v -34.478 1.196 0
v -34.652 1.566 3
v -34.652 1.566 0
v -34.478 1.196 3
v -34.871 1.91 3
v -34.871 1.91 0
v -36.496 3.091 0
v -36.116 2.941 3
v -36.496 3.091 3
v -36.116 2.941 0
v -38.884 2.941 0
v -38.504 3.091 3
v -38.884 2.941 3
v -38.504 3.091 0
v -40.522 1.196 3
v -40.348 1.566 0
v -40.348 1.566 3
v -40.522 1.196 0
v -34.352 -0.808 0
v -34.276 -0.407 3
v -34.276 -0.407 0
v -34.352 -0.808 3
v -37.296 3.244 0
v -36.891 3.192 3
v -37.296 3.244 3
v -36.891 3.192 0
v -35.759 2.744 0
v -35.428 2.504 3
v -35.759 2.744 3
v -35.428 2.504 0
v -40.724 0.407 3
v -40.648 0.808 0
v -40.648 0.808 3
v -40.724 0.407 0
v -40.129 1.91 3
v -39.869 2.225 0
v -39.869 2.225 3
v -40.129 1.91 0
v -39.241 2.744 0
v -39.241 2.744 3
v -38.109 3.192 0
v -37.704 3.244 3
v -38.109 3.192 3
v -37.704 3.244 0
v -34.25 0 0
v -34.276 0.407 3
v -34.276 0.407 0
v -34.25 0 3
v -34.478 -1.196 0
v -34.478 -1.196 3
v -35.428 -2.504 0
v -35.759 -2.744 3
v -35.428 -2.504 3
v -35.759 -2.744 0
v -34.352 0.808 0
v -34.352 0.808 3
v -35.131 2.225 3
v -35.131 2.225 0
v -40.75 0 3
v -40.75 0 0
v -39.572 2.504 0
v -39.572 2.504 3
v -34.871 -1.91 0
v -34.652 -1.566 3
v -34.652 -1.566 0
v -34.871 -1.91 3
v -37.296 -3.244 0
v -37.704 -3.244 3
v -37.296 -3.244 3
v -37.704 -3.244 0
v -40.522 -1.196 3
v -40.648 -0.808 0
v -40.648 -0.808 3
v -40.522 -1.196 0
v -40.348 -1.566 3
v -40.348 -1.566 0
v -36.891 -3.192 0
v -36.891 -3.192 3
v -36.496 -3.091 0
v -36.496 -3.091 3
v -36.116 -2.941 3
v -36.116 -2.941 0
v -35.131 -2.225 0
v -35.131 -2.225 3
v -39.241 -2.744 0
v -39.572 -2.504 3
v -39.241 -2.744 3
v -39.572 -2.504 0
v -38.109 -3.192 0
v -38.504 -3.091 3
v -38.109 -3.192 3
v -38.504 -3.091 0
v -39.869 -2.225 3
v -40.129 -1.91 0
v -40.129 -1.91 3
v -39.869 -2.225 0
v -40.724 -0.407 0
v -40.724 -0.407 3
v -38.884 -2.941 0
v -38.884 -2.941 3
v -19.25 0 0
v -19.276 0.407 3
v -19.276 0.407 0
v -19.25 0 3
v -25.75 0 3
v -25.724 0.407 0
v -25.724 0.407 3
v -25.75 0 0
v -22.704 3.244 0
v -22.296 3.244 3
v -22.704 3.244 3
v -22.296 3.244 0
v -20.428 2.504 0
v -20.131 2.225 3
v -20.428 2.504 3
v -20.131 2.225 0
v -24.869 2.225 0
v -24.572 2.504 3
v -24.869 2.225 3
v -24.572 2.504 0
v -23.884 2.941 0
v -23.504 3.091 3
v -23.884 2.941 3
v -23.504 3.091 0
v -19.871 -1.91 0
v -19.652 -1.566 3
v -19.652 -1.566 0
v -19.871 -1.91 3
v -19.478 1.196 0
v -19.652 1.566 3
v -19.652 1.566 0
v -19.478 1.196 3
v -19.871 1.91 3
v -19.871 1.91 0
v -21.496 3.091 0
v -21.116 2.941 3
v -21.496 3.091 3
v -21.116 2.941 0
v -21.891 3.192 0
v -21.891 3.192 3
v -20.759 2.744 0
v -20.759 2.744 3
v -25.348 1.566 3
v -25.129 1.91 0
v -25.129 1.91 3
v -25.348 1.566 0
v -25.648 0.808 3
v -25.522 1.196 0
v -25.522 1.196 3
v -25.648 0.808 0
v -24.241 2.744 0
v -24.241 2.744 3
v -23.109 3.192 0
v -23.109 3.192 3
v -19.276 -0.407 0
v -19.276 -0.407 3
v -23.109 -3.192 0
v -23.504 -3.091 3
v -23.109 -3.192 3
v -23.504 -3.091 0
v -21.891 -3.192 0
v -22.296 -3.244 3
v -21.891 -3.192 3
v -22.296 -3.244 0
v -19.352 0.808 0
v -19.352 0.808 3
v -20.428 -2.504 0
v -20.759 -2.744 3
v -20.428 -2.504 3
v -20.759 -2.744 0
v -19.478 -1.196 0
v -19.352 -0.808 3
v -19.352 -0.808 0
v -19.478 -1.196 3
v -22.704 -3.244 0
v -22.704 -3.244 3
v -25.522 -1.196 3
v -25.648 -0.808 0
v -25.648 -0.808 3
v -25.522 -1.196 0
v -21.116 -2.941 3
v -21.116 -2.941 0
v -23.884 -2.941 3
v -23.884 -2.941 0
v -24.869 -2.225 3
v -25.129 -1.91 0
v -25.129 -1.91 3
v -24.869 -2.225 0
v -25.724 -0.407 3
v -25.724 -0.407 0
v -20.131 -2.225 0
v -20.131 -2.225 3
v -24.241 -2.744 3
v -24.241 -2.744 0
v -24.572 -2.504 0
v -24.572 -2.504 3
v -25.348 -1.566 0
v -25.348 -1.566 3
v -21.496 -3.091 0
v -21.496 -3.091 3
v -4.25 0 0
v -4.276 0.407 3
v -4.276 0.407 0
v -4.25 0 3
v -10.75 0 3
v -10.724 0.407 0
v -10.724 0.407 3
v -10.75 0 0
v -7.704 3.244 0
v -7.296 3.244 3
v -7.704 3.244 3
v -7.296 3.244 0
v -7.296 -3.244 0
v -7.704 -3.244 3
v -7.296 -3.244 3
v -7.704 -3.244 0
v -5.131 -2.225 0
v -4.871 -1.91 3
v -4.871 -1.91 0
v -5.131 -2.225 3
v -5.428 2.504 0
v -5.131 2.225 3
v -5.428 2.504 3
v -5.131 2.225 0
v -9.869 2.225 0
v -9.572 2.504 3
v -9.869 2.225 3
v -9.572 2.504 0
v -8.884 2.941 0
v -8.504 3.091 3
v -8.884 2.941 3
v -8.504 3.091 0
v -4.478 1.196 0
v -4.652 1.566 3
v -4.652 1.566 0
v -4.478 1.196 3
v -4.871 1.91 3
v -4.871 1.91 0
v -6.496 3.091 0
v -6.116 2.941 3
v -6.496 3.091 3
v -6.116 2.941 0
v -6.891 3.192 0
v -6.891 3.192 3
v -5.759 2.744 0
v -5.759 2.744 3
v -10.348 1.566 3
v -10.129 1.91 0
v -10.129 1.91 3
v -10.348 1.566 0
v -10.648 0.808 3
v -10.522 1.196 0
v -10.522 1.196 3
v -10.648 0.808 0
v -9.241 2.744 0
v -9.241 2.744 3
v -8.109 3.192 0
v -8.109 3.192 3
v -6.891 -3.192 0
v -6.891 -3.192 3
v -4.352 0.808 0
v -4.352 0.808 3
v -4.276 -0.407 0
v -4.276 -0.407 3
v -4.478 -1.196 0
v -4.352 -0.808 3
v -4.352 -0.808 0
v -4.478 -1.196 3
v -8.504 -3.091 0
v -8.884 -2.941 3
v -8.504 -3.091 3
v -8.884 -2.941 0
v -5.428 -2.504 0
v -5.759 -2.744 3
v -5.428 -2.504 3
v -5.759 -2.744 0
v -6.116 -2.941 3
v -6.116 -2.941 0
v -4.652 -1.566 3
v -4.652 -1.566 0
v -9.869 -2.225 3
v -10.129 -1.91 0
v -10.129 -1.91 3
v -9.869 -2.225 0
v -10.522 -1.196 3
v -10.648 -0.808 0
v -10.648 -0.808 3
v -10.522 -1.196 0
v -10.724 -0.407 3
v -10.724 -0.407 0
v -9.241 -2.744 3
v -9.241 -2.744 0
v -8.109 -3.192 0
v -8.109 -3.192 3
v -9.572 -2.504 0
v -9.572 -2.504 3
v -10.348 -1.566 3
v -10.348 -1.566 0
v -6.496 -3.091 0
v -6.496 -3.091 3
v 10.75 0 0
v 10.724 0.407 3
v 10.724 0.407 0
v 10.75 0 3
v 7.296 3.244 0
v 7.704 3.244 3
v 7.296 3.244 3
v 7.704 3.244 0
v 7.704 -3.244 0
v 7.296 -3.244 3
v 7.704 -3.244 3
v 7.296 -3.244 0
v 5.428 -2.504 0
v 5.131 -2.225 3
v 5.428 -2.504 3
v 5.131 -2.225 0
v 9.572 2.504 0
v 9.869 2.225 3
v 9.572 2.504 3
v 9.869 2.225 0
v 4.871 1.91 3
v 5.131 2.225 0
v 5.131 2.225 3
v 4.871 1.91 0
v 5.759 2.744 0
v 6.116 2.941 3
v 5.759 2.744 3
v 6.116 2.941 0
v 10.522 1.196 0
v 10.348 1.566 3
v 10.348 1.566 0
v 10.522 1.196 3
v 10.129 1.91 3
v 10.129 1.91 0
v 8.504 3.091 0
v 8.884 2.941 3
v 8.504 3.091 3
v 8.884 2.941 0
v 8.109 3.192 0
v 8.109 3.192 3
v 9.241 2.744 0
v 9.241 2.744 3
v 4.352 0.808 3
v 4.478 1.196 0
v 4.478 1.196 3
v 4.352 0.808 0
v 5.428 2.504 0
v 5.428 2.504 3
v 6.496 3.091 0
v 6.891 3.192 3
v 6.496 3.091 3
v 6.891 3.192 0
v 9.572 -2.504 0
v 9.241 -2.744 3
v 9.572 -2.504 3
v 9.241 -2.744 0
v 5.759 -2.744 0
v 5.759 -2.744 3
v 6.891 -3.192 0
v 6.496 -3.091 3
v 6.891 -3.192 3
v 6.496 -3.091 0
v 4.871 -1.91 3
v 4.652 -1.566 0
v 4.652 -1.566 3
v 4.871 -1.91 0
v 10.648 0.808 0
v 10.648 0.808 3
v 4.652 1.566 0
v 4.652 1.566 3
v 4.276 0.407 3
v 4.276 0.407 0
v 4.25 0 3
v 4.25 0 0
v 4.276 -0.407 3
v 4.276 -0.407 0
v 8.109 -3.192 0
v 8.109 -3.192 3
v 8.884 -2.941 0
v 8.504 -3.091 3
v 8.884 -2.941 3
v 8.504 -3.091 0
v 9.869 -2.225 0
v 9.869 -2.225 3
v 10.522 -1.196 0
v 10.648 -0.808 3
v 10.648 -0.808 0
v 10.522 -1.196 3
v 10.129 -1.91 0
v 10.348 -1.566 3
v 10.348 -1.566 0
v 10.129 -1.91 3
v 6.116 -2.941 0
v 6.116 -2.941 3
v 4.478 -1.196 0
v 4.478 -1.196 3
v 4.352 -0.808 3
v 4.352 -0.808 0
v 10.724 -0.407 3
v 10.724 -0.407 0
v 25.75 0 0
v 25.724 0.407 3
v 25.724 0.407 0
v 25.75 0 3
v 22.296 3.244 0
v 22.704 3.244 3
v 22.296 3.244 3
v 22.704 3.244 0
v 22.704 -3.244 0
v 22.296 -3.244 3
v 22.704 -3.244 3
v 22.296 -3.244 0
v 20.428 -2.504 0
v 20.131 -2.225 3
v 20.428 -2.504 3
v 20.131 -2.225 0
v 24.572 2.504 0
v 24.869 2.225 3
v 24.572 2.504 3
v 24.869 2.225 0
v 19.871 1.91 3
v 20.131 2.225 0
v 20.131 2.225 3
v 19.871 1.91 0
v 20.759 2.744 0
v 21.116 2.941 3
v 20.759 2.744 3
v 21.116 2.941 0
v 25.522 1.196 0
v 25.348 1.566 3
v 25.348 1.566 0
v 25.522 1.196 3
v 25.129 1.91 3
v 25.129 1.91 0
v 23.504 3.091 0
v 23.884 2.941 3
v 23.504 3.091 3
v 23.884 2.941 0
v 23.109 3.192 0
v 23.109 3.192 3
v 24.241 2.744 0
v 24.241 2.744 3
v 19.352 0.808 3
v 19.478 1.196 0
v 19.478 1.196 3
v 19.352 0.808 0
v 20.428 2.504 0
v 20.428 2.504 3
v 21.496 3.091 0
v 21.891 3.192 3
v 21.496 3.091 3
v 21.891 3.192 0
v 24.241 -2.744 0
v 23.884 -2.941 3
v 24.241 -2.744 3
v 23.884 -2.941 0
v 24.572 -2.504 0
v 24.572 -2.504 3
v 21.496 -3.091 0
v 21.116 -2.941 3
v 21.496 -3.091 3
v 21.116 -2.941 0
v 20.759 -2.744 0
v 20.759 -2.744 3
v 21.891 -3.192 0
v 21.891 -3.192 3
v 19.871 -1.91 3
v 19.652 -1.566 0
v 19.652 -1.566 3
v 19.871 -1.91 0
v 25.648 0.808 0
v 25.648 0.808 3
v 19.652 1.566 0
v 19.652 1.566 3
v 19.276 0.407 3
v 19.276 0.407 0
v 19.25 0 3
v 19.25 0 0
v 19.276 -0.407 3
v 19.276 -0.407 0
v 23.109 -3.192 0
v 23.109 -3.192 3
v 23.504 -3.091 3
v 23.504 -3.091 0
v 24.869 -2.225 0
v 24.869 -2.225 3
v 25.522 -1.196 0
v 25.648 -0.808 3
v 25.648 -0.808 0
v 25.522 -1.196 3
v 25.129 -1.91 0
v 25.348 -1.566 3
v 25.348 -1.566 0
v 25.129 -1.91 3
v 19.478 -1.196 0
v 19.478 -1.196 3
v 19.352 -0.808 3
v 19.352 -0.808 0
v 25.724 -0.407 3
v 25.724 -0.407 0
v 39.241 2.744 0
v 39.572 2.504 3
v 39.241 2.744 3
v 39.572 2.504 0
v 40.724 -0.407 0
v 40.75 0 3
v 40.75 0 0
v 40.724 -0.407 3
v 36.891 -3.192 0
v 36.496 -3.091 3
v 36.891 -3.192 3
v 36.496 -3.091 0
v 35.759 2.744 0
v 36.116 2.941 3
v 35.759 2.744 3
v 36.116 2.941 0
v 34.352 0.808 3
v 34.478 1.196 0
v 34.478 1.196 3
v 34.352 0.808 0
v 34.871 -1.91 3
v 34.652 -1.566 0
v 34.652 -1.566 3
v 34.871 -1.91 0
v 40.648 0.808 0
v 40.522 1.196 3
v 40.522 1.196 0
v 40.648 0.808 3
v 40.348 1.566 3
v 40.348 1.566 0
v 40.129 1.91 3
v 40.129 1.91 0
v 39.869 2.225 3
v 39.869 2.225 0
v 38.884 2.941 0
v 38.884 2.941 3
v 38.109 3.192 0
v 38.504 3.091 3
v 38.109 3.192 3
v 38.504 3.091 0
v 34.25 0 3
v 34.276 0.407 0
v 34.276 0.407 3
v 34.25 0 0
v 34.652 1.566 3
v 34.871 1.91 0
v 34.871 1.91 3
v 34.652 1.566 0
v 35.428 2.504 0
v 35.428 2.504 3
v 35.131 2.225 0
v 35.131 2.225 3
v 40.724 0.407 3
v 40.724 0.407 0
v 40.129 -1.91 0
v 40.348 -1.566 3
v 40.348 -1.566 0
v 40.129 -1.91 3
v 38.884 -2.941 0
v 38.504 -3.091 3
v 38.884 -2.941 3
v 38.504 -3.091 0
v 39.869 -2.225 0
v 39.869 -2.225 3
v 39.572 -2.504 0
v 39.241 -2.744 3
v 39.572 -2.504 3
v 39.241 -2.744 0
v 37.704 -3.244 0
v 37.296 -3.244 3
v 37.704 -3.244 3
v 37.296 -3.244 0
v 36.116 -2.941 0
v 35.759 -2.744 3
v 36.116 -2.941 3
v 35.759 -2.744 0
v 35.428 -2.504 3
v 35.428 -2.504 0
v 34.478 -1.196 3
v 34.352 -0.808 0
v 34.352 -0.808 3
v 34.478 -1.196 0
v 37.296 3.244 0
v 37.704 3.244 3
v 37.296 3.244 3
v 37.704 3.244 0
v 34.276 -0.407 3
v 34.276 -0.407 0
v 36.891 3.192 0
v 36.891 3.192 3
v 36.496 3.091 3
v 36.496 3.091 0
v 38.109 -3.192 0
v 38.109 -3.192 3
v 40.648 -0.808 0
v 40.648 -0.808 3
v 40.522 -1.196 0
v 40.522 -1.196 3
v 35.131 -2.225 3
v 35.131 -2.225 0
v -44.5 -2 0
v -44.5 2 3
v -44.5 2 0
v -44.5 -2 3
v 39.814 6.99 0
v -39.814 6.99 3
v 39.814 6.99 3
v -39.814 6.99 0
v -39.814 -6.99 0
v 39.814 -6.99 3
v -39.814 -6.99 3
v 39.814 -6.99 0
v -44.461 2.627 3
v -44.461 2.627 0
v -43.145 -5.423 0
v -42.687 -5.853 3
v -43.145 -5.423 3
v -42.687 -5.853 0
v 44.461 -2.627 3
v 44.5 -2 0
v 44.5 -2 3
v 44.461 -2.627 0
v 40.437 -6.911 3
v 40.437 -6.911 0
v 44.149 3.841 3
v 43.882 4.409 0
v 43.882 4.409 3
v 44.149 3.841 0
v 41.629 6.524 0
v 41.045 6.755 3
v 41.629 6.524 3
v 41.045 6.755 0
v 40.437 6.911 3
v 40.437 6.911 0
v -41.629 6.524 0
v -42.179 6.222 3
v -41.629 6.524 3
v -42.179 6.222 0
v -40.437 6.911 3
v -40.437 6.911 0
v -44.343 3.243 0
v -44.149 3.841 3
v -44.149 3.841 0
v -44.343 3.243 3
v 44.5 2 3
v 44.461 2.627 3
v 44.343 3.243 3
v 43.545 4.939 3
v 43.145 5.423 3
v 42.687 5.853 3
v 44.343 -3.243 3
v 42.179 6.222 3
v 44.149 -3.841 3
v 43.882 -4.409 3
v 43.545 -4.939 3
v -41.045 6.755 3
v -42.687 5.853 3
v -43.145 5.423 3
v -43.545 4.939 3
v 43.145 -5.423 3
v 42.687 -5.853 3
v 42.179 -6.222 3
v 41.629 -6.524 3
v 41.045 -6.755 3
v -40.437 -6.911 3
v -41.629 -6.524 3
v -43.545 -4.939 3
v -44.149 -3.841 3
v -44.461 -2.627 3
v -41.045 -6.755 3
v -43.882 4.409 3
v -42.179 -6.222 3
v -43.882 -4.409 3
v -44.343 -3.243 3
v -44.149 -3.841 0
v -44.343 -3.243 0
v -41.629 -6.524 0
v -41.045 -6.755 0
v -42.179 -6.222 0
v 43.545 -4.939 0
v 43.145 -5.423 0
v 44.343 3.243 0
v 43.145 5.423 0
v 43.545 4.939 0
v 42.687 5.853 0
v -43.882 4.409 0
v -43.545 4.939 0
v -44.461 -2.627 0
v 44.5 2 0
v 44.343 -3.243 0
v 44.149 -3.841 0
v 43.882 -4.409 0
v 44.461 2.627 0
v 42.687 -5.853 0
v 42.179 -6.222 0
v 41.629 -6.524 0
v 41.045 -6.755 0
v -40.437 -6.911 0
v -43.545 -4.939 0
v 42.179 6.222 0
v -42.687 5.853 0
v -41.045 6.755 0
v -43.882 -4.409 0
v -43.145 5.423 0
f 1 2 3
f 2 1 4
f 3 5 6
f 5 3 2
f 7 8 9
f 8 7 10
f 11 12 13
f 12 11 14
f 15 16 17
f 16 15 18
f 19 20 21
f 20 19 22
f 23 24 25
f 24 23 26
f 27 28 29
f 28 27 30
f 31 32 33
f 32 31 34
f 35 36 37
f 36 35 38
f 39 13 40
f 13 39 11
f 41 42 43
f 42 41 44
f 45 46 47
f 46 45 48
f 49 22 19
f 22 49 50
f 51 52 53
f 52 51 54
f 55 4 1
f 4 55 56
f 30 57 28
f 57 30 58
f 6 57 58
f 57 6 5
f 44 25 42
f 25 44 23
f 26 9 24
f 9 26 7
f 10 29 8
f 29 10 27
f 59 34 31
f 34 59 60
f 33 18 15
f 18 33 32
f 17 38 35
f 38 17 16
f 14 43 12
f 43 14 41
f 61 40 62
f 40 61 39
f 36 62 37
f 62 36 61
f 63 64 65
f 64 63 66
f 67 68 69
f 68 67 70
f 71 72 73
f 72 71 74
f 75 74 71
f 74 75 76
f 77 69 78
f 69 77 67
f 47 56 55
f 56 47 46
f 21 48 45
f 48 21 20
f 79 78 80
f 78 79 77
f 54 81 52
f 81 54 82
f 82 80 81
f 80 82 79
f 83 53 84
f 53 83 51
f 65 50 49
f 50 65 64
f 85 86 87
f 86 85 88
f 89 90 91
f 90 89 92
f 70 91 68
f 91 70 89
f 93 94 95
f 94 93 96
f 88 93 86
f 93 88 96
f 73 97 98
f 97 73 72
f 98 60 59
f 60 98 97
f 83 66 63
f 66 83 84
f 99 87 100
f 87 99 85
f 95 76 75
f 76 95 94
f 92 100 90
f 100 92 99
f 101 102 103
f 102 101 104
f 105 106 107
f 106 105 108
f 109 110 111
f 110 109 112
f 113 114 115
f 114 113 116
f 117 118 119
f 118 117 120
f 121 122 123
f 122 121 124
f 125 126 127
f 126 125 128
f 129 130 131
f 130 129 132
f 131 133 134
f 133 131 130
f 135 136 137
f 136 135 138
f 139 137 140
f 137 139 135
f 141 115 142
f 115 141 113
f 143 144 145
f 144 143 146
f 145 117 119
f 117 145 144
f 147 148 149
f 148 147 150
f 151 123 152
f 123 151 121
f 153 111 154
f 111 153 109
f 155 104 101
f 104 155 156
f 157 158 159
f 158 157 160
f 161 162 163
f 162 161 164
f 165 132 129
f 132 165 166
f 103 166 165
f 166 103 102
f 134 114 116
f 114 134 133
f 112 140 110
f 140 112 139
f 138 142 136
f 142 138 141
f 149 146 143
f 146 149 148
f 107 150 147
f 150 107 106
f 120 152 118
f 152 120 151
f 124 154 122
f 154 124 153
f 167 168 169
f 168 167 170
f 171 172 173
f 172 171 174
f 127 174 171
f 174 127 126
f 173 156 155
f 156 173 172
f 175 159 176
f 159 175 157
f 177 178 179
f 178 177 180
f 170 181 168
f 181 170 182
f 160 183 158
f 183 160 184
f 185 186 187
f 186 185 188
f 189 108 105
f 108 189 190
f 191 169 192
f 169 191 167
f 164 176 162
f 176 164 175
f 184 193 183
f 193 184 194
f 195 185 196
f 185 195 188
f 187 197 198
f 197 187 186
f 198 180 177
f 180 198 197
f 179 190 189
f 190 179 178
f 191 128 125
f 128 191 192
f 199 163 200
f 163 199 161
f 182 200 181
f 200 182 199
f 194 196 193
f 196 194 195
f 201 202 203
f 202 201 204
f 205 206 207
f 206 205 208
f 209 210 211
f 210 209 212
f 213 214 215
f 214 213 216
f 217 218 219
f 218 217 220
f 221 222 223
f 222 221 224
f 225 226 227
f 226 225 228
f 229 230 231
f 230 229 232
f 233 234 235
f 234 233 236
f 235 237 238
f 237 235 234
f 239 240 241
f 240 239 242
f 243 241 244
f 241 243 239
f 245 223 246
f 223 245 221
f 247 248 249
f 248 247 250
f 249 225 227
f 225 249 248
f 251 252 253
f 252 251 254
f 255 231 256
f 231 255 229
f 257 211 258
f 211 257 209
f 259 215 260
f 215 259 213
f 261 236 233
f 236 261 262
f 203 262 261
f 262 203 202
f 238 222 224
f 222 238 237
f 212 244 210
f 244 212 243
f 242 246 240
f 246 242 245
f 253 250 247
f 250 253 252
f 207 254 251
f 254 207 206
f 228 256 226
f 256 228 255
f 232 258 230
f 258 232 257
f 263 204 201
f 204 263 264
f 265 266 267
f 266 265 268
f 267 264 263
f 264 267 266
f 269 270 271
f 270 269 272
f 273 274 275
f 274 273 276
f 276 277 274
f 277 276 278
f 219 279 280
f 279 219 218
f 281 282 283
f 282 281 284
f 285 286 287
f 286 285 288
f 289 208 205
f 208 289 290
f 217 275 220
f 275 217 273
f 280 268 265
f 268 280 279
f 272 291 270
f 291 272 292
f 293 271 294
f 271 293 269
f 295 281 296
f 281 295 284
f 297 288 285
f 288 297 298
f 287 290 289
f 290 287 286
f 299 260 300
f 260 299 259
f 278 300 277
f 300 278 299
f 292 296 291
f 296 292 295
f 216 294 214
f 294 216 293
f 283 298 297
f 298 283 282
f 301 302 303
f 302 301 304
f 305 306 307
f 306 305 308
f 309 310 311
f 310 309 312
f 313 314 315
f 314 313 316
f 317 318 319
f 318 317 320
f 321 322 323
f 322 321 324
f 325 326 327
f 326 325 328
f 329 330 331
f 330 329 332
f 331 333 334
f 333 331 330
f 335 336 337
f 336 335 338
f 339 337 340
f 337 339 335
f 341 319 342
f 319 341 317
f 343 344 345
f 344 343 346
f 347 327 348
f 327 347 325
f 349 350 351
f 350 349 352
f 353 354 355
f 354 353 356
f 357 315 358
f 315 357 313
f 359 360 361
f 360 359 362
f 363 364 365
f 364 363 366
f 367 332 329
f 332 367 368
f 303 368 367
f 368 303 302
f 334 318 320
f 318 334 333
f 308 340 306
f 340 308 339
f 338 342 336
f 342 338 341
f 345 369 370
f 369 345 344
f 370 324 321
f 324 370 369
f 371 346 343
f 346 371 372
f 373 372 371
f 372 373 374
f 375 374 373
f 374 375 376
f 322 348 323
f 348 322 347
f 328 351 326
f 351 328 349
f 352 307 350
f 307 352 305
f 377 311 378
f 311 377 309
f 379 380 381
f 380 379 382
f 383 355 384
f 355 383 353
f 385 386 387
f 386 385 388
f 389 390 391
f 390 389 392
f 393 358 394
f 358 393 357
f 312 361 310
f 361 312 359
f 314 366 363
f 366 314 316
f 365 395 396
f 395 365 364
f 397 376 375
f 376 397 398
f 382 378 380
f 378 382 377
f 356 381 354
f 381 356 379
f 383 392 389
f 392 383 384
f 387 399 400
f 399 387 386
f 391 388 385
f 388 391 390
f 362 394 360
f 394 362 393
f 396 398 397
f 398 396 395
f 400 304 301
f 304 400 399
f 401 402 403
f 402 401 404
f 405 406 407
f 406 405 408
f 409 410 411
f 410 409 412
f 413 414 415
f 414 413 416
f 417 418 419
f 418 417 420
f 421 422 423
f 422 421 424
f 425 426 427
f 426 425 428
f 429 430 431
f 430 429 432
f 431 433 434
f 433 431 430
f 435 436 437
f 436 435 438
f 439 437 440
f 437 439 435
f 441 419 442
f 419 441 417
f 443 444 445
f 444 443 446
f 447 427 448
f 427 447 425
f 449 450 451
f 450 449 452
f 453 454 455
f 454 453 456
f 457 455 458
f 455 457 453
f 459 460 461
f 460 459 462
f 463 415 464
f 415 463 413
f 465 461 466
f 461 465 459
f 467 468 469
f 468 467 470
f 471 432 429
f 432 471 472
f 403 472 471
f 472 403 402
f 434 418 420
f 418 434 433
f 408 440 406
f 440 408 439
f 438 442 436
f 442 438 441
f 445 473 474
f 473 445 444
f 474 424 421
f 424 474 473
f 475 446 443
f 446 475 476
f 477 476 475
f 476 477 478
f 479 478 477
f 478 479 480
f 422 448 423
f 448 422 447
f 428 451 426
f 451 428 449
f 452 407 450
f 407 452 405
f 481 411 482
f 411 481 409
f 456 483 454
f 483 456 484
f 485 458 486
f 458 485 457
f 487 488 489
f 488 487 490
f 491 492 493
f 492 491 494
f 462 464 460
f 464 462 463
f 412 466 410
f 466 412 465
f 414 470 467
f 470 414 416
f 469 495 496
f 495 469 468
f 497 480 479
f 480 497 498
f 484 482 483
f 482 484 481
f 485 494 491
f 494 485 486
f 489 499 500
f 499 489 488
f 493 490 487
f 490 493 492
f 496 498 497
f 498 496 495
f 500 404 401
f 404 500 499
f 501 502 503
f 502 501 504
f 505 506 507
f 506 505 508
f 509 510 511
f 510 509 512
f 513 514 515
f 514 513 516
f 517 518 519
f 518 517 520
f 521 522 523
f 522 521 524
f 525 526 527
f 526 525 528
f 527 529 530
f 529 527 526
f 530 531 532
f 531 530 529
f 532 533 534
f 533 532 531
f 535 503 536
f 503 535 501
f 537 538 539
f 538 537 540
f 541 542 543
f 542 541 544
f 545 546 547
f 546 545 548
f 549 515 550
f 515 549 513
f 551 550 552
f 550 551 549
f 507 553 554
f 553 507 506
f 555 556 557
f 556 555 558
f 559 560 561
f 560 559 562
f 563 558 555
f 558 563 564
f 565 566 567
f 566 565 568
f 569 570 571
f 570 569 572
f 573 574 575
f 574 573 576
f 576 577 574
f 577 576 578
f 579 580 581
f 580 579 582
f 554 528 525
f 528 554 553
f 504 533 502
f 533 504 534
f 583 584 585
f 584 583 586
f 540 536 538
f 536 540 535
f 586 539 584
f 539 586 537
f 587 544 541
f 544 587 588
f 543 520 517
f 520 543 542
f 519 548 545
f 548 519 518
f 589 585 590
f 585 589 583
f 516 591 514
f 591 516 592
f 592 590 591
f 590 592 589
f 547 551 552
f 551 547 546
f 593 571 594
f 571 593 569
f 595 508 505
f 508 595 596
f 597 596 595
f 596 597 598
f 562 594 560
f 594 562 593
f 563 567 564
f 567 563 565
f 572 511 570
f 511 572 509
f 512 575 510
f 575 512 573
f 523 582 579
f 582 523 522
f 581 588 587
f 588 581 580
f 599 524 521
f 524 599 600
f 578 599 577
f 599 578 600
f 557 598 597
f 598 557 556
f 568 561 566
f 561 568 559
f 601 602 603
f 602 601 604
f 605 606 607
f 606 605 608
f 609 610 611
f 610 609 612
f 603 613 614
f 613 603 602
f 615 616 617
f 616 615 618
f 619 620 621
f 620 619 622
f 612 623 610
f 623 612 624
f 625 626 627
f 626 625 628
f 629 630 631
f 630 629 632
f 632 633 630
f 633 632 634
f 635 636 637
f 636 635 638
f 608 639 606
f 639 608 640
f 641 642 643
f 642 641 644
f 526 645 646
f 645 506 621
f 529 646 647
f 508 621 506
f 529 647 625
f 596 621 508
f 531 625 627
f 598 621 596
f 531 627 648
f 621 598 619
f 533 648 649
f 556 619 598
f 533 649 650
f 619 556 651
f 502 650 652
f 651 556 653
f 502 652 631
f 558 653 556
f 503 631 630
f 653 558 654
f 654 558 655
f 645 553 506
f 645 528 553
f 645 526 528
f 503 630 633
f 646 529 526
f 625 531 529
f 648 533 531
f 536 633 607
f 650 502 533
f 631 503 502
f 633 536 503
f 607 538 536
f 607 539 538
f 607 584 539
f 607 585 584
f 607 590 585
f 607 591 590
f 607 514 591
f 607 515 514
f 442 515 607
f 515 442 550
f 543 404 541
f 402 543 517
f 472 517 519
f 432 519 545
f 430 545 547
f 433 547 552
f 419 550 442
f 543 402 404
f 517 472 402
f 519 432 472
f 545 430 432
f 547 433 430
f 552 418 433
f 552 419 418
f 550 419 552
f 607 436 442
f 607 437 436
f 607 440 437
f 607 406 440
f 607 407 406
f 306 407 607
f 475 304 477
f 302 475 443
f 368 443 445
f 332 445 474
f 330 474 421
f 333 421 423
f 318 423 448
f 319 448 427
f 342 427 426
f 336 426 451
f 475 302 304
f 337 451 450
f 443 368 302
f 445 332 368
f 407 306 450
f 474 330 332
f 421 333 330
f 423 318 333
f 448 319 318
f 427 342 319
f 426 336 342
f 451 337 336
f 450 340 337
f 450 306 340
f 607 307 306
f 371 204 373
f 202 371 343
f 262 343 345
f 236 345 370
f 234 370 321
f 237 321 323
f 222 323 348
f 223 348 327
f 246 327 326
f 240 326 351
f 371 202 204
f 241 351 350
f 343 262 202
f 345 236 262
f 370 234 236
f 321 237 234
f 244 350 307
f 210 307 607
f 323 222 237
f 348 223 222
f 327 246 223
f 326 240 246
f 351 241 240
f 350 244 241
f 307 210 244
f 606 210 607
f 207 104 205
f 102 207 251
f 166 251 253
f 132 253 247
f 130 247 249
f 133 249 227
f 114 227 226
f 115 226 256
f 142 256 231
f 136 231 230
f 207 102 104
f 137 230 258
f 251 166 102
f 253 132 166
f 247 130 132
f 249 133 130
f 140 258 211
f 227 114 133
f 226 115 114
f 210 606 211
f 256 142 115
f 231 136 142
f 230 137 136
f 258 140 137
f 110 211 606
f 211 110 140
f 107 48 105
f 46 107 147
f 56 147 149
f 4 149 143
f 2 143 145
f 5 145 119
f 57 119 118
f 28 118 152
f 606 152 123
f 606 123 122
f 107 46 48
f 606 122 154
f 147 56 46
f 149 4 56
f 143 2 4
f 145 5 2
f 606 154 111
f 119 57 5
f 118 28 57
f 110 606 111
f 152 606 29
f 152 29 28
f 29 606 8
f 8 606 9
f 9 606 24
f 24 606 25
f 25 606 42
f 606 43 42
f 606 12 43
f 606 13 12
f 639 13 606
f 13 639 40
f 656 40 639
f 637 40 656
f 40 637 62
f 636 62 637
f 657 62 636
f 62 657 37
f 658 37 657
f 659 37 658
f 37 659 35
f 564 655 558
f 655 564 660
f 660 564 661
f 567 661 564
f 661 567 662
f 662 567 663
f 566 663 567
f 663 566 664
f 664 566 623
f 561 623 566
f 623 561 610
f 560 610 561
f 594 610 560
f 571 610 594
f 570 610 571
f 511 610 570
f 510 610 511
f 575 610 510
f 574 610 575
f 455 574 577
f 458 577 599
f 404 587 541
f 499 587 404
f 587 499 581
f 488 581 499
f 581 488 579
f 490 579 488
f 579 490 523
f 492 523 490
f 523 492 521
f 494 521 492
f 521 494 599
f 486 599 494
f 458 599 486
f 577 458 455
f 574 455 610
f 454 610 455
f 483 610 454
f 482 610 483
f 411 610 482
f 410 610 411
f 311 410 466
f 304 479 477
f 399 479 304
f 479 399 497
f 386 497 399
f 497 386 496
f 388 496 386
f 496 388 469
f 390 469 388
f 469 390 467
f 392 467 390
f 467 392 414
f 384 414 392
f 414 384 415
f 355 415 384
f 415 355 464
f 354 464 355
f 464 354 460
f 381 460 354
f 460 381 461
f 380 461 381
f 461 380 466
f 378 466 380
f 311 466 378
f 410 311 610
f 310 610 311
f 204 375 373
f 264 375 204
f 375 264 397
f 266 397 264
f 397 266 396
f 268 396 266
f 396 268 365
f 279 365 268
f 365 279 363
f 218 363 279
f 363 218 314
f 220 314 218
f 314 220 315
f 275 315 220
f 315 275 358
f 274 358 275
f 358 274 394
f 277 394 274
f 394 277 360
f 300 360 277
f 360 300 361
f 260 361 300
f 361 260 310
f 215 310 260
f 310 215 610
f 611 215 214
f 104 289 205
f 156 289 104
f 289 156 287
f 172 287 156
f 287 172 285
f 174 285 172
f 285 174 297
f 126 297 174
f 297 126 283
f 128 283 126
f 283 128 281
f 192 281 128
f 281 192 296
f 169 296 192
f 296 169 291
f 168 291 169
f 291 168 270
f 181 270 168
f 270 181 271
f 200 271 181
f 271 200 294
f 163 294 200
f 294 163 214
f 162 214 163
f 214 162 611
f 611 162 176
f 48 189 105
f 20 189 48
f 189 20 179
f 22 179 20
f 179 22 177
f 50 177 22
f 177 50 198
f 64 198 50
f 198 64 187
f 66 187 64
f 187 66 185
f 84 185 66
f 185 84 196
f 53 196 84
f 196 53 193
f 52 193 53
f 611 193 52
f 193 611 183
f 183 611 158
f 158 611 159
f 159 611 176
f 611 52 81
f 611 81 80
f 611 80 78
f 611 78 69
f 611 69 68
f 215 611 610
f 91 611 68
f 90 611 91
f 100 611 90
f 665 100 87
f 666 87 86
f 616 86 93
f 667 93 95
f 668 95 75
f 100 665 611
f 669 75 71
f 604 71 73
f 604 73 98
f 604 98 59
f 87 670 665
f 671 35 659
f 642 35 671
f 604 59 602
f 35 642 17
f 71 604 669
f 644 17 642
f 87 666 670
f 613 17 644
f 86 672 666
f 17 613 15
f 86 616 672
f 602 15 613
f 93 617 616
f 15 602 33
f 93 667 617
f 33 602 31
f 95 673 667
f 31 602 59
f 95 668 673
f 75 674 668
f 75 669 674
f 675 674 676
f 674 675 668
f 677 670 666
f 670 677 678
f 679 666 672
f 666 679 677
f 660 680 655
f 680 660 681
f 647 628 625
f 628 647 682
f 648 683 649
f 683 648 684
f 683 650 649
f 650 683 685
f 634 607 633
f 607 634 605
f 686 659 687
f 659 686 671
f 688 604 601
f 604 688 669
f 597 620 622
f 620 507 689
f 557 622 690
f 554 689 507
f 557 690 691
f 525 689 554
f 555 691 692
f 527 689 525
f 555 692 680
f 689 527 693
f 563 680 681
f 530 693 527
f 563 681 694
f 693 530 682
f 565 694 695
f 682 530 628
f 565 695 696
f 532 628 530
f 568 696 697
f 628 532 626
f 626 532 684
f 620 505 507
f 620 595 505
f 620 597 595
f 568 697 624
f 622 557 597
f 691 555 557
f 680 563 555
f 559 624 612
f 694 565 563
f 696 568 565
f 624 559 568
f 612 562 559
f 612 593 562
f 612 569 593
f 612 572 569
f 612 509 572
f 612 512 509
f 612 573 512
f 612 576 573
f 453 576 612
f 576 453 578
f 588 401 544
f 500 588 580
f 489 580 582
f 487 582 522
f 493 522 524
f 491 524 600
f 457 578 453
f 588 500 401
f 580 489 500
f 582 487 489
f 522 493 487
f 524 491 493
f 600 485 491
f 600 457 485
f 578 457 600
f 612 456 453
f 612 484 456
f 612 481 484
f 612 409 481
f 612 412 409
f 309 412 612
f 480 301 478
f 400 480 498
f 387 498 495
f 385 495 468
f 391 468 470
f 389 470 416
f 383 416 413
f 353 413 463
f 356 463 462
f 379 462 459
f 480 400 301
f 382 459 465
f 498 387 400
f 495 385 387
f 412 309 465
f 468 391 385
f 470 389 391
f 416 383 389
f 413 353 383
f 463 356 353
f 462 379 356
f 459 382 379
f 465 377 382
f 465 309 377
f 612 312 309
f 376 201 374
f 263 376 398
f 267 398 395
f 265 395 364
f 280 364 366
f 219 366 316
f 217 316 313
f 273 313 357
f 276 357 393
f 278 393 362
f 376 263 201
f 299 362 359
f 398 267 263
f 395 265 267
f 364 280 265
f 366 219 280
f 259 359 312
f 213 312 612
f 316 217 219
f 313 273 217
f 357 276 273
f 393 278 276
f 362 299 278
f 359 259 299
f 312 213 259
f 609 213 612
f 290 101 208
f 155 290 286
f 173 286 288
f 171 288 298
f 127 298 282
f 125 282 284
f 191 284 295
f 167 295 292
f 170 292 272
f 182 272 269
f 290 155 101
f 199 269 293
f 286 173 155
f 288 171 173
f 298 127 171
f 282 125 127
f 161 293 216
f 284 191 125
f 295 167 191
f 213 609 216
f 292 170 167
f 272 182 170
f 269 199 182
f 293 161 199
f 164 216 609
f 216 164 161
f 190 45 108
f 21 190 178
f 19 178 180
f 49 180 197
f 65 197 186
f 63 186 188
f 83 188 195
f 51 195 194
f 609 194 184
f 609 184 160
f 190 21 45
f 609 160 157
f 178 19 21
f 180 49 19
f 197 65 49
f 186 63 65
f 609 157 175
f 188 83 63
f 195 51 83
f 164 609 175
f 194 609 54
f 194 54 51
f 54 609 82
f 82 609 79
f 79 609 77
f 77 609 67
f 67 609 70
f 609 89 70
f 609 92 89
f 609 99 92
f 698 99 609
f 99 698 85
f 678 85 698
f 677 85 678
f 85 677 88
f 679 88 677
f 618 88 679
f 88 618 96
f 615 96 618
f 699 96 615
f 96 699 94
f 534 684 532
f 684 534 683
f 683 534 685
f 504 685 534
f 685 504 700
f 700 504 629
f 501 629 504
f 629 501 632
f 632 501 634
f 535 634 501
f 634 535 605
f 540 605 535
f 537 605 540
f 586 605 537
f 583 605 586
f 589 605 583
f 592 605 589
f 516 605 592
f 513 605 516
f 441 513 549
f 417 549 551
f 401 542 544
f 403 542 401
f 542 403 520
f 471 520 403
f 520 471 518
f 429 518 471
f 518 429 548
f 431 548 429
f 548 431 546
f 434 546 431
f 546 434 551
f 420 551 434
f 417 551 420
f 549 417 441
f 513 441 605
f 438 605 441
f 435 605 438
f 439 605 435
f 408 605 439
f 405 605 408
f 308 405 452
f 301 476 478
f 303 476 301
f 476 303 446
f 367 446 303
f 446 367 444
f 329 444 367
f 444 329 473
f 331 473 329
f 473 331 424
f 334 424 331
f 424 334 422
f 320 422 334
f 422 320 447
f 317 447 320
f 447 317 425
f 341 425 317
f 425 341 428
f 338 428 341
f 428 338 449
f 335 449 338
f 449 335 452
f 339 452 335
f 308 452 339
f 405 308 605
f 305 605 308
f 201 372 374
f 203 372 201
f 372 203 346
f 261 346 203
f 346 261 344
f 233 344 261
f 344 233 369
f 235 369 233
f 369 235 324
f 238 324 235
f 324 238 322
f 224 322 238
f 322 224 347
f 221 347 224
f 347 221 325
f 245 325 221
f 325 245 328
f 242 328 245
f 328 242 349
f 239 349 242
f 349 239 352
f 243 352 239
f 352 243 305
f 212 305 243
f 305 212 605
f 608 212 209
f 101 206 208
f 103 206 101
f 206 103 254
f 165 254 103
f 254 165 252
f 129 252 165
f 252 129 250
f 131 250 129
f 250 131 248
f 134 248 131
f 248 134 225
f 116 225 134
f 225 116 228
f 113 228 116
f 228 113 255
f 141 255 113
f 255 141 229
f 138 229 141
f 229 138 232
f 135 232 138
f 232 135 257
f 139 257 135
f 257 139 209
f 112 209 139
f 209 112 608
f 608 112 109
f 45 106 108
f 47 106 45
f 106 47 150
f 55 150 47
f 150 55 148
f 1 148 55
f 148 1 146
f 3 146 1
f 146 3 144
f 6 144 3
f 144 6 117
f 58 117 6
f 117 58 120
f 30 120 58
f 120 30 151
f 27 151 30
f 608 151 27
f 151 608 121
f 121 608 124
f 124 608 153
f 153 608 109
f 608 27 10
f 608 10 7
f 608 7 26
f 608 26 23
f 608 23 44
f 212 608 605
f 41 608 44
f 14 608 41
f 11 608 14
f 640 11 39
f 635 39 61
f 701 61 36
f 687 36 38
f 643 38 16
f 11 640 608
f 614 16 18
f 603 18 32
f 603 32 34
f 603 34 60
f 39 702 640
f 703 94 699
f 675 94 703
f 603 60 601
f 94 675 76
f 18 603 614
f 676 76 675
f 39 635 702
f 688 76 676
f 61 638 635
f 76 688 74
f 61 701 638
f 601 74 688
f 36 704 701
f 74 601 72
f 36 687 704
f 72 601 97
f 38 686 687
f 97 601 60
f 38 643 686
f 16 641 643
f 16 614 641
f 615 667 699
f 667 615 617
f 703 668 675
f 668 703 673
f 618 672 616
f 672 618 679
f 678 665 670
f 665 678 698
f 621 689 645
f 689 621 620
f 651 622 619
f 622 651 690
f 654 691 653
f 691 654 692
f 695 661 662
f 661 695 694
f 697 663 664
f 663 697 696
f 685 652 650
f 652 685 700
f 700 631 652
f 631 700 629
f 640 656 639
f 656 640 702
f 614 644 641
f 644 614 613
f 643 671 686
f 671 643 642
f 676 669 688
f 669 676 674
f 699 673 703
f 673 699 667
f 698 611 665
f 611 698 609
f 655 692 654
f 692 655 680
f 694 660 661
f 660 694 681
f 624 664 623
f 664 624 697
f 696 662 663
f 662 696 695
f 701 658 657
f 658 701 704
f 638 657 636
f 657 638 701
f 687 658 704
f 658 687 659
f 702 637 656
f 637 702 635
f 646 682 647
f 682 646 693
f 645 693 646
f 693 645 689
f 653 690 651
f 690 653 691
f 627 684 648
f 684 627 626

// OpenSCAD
$fn = 50;


difference() {
	union() {
		hull() {
			translate(v = [-39.5000000000, 2.0000000000, 0]) {
				cylinder(h = 3, r = 5);
			}
			translate(v = [39.5000000000, 2.0000000000, 0]) {
				cylinder(h = 3, r = 5);
			}
			translate(v = [-39.5000000000, -2.0000000000, 0]) {
				cylinder(h = 3, r = 5);
			}
			translate(v = [39.5000000000, -2.0000000000, 0]) {
				cylinder(h = 3, r = 5);
			}
		}
	}
	union() {
		translate(v = [-37.5000000000, 0.0000000000, -100.0000000000]) {
			cylinder(h = 200, r = 3.2500000000);
		}
		translate(v = [-22.5000000000, 0.0000000000, -100.0000000000]) {
			cylinder(h = 200, r = 3.2500000000);
		}
		translate(v = [-7.5000000000, 0.0000000000, -100.0000000000]) {
			cylinder(h = 200, r = 3.2500000000);
		}
		translate(v = [7.5000000000, 0.0000000000, -100.0000000000]) {
			cylinder(h = 200, r = 3.2500000000);
		}
		translate(v = [22.5000000000, 0.0000000000, -100.0000000000]) {
			cylinder(h = 200, r = 3.2500000000);
		}
		translate(v = [37.5000000000, 0.0000000000, -100.0000000000]) {
			cylinder(h = 200, r = 3.2500000000);
		}
	}
}
